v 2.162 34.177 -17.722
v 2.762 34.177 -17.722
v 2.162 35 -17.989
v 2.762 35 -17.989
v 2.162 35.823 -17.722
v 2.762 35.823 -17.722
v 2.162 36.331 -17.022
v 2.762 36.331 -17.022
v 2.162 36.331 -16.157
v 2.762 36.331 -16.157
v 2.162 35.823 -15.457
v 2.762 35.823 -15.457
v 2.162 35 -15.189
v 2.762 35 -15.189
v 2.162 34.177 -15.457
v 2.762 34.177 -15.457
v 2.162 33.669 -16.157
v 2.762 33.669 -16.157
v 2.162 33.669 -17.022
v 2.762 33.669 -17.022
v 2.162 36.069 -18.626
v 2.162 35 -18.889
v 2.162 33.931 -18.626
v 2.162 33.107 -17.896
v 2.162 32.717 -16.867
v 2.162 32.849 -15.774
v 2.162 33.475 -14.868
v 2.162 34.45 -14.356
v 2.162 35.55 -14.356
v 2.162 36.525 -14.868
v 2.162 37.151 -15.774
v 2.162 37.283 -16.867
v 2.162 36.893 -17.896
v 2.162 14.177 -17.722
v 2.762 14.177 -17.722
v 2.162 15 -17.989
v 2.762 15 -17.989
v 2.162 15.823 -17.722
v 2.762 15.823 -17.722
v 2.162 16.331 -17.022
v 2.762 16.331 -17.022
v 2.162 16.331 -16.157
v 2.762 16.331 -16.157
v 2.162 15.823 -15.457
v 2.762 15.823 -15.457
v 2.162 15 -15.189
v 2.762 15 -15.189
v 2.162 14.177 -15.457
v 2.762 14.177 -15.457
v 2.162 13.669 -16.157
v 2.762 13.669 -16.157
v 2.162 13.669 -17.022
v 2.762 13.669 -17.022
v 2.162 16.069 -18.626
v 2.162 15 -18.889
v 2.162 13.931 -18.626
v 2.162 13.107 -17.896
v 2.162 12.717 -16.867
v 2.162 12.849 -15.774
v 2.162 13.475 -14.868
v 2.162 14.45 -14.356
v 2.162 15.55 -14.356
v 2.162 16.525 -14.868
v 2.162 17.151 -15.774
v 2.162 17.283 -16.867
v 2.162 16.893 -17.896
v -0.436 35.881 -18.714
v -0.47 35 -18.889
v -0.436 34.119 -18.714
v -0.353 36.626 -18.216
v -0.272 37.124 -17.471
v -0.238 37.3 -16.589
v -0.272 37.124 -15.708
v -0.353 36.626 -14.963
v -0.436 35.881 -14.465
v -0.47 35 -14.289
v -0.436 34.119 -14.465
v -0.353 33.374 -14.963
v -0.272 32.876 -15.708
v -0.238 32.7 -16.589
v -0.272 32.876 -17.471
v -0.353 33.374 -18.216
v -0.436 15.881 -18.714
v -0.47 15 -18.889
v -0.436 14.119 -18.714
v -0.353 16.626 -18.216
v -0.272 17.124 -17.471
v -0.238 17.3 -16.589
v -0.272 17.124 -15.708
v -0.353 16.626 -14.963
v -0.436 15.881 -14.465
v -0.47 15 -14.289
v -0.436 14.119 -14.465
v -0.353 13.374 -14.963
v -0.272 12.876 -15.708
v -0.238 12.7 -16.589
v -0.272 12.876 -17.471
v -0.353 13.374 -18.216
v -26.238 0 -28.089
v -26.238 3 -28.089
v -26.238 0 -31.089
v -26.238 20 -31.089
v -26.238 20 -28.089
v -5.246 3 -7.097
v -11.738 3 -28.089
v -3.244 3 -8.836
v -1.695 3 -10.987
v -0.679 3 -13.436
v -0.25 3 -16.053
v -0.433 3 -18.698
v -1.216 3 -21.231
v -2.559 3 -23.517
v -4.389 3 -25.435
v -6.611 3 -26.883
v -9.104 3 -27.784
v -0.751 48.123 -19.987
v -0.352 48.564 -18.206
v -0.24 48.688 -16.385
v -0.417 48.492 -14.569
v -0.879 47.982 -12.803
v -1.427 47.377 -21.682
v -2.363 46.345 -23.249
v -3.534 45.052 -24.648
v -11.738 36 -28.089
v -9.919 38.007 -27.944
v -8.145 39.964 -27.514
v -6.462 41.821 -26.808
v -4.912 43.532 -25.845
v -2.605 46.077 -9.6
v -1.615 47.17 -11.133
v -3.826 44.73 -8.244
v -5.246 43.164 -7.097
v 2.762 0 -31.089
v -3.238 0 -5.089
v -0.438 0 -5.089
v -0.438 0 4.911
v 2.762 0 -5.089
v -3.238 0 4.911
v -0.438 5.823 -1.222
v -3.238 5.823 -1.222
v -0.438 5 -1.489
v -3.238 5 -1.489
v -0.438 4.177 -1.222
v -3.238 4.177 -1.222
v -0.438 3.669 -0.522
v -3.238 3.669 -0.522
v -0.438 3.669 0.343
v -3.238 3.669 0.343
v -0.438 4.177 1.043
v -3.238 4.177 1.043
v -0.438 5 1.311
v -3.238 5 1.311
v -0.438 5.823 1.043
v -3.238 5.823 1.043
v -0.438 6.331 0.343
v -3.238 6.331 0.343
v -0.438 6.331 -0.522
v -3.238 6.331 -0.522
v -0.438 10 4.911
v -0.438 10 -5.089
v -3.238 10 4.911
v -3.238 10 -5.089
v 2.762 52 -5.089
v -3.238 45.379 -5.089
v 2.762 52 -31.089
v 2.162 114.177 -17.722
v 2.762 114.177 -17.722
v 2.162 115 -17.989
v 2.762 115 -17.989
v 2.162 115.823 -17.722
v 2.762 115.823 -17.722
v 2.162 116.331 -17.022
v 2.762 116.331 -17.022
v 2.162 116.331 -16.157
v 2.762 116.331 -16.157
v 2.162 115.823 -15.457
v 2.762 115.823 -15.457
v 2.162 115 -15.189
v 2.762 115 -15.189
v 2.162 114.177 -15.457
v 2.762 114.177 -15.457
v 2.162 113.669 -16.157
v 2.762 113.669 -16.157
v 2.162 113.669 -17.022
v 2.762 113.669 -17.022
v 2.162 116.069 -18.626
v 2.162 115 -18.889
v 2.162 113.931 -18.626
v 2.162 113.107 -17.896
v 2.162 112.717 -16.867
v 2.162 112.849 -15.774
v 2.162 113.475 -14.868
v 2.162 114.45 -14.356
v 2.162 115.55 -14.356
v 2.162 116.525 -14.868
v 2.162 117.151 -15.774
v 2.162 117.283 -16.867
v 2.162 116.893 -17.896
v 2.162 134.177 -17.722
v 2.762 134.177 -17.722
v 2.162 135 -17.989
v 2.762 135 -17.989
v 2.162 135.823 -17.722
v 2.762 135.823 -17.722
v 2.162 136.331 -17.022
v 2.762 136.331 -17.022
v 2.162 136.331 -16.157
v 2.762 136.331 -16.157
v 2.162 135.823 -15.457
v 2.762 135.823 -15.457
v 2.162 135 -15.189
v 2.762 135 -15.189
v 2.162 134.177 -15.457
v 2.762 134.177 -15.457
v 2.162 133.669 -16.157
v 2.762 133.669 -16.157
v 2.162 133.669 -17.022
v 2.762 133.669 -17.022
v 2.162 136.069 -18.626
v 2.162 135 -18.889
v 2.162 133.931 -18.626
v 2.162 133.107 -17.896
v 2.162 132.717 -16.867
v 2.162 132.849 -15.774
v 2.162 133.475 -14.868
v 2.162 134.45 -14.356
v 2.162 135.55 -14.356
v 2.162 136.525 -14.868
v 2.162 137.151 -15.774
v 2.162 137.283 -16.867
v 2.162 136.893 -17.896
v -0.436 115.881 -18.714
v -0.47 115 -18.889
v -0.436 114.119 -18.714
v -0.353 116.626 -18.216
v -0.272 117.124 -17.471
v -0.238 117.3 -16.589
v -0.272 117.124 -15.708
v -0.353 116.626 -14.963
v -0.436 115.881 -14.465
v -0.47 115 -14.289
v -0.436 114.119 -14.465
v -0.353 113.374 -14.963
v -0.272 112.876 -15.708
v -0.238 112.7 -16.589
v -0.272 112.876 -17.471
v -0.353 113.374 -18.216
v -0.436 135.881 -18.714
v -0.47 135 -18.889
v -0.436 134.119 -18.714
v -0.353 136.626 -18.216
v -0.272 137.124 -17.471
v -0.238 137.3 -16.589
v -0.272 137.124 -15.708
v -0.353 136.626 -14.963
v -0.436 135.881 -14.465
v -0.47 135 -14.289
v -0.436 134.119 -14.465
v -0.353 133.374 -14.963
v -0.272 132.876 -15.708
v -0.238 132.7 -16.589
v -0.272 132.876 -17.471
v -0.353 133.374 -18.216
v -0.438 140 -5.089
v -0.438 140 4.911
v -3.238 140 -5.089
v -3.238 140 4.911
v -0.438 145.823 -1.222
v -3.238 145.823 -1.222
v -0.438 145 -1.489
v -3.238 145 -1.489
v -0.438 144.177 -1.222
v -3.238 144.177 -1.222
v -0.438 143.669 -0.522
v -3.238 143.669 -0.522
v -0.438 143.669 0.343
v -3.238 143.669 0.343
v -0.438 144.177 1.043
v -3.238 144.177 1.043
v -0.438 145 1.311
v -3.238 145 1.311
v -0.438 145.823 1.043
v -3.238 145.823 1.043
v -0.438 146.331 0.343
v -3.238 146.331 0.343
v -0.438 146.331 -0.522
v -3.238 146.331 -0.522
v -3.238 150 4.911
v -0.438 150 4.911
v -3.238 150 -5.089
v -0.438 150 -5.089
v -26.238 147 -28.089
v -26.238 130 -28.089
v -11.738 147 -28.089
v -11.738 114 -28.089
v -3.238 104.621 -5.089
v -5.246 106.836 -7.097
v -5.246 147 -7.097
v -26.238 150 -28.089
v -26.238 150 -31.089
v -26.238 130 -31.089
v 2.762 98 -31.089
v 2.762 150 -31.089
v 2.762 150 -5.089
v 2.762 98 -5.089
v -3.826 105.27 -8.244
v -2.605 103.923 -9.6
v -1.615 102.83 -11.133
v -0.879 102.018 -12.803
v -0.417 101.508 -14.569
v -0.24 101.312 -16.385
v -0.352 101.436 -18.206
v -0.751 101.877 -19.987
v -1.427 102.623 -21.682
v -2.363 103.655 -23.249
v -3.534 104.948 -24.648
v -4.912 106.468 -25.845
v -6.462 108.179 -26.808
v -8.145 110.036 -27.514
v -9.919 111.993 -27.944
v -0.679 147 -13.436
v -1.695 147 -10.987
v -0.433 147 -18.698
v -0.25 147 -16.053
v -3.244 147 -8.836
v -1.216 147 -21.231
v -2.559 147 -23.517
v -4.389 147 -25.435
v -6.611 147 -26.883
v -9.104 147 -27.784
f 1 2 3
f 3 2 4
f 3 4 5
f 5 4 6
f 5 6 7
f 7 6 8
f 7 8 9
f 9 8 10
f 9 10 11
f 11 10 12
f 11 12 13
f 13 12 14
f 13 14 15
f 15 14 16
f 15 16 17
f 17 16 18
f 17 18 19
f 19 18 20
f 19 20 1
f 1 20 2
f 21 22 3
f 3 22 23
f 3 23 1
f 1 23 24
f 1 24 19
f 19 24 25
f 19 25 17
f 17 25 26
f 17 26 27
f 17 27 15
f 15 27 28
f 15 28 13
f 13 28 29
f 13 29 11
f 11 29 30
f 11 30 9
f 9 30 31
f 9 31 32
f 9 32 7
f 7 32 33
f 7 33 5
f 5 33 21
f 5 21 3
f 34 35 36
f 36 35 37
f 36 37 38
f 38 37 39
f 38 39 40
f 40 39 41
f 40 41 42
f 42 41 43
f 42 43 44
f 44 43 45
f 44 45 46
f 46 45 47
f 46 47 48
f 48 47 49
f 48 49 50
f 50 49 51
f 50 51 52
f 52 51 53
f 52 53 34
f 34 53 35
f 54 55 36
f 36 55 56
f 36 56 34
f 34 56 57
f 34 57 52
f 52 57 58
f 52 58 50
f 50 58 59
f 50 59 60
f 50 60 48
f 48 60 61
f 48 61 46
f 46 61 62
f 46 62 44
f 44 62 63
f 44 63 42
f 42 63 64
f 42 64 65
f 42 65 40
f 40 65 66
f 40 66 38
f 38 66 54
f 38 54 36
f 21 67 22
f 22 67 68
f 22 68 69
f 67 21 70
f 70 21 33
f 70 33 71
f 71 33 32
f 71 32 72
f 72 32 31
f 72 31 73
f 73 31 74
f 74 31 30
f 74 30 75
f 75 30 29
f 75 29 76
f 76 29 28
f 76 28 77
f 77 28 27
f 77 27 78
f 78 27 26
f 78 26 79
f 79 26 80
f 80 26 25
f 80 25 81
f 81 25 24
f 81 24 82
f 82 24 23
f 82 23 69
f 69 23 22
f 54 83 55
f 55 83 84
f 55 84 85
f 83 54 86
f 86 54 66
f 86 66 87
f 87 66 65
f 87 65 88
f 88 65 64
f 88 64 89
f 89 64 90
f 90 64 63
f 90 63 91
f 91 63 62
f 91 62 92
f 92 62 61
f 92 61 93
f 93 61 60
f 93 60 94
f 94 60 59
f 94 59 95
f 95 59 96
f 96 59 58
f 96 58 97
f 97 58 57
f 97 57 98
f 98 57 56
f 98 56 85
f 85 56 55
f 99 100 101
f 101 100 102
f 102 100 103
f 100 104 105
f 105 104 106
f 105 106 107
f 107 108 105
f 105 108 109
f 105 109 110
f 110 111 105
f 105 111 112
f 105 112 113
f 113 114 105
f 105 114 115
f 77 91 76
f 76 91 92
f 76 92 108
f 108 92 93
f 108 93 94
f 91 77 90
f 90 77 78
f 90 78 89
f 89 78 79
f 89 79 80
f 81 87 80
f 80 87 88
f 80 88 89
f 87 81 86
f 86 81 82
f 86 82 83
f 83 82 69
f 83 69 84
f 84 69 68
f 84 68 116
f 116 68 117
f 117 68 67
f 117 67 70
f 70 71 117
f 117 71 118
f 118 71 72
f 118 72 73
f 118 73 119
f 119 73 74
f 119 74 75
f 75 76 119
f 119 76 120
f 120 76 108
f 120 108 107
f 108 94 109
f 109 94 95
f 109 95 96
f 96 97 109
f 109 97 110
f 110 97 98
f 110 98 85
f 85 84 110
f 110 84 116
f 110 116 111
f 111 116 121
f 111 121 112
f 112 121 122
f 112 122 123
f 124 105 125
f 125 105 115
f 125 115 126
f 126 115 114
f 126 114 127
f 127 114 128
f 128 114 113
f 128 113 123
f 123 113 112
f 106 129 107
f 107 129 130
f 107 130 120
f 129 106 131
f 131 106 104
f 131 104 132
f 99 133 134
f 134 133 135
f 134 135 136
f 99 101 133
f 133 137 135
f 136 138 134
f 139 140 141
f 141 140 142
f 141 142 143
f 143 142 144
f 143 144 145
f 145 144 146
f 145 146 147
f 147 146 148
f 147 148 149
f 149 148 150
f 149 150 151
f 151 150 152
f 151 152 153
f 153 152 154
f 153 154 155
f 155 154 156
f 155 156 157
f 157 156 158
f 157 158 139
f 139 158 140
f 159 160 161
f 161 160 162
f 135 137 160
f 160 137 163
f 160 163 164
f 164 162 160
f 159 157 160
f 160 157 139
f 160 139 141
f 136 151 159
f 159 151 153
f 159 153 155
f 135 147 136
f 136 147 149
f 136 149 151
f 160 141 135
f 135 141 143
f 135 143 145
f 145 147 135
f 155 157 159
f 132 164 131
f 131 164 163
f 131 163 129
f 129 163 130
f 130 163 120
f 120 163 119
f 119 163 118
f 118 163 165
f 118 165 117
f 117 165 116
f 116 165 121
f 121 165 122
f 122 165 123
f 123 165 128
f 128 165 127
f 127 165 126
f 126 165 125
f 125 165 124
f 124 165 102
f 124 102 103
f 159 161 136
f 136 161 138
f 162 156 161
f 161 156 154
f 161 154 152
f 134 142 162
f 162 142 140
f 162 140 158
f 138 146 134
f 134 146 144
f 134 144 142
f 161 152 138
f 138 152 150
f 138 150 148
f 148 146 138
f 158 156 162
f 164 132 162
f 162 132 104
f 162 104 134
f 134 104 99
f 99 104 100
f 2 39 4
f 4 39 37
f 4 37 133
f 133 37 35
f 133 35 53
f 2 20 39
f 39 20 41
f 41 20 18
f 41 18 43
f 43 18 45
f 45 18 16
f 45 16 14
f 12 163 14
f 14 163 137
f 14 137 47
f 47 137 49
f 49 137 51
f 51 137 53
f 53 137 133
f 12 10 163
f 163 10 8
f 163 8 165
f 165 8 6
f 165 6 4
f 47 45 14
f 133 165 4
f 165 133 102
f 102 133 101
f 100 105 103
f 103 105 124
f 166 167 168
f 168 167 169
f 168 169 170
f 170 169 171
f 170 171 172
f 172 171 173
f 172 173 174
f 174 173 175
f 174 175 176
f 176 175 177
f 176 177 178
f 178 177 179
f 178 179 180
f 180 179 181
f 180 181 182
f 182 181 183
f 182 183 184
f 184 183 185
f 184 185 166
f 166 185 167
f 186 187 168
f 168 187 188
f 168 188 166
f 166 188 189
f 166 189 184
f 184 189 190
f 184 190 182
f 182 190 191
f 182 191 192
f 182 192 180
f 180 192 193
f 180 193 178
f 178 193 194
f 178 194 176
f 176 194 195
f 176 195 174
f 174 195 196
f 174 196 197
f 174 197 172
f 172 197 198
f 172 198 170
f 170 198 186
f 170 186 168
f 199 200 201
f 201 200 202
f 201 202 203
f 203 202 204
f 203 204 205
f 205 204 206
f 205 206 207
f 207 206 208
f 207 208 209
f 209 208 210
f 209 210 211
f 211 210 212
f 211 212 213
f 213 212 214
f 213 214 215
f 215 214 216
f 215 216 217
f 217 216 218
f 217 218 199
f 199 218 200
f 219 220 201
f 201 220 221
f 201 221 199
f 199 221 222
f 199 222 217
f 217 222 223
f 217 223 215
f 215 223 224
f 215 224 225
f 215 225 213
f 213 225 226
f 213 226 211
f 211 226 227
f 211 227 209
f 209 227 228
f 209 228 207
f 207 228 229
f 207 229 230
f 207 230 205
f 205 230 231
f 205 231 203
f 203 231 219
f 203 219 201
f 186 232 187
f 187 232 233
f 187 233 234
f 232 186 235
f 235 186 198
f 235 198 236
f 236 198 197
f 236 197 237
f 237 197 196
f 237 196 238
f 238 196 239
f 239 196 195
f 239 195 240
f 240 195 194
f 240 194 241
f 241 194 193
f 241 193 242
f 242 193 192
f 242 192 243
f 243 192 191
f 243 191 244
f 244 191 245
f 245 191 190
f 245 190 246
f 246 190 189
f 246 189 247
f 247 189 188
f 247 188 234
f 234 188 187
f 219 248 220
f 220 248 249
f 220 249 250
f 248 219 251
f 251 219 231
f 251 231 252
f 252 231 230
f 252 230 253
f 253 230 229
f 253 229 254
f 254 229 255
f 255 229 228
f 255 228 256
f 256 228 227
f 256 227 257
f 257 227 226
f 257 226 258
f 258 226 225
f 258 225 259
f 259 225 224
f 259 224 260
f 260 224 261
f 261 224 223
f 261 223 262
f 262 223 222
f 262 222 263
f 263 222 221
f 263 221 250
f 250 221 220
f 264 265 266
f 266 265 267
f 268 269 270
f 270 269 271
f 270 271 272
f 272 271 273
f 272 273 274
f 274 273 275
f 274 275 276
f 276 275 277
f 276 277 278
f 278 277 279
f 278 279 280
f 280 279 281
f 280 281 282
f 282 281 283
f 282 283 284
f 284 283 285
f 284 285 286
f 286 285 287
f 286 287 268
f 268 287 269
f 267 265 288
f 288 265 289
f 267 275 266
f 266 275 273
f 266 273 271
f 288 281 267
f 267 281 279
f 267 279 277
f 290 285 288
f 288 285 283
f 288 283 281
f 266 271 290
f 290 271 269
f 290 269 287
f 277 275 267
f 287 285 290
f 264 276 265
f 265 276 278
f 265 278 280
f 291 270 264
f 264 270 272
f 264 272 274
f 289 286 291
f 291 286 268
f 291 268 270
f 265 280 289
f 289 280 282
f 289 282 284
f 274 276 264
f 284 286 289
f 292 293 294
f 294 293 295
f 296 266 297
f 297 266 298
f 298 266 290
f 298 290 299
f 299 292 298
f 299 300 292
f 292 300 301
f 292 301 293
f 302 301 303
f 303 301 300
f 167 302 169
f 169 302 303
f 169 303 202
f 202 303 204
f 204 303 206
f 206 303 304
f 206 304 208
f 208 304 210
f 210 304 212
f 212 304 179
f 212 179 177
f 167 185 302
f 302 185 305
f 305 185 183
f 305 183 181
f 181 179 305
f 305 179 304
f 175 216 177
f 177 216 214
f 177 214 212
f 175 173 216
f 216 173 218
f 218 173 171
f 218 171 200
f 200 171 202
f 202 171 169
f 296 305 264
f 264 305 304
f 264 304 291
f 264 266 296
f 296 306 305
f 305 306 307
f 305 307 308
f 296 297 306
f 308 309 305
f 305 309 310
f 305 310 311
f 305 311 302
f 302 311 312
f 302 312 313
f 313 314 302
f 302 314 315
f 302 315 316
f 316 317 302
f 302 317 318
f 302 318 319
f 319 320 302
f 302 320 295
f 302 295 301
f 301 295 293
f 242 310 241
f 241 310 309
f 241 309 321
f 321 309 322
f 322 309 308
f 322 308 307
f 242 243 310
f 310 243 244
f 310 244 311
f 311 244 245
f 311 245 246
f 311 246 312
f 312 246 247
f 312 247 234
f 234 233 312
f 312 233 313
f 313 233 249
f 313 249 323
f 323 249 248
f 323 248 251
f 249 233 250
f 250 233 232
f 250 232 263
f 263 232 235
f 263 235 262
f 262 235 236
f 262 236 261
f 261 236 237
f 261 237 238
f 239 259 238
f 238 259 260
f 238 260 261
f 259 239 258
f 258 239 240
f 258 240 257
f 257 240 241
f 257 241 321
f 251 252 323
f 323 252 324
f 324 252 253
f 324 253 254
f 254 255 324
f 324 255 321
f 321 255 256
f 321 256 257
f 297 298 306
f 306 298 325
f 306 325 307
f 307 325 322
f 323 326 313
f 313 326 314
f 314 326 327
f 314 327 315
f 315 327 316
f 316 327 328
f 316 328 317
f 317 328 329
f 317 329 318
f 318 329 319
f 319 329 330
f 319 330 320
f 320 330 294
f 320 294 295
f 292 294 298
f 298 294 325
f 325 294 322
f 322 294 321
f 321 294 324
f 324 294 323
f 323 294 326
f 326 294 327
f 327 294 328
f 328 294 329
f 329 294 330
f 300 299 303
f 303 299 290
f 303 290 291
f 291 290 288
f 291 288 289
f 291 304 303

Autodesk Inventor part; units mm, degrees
ref_plane "YZ Plane" through (0, 0, 0) normal (1, 0, 0) x (0, 1, 0)
ref_plane "XZ Plane" through (0, 0, 0) normal (0, 1, 0) x (-1, 0, 0)
ref_plane "XY Plane" through (0, 0, 0) normal (0, 0, 1) x (1, 0, 0)
sketch "Sketch1" plane through (0, 0, 0) normal (0, 1, 0) x (-1, 0, 0)
  line L0 (0.4379, 4.9107) -> (0.4379, -5.0893)
  line L1 (0.4379, -5.0893) -> (-2.7621, -5.0893)
  line L2 (-2.7621, -5.0893) -> (-2.7621, -31.0893)
  line L3 (-2.7621, -31.0893) -> (26.2379, -31.0893)
  line L4 (26.2379, -31.0893) -> (26.2379, -28.0893)
  line L5 (26.2379, -28.0893) -> (0.2379, -28.0893)
  line L6 (0.2379, -28.0893) -> (0.2379, -8.0893)
  line L7 (0.2379, -8.0893) -> (3.2379, -8.0893)
  line L8 (3.2379, -8.0893) -> (3.2379, 4.9107)
  line L9 (3.2379, 4.9107) -> (0.4379, 4.9107)
  circle A0 centre (11.7379, -16.5893) radius 11.5
  line L10 (3.2379, -8.0893) -> (3.2379, -8.8433)
  line L11 (3.2379, -5.0893) -> (26.2379, -28.0893)
  point P0 (0, 0)
  point P1 (11.7379, -28.0893)
  point P2 (5.2457, -7.0971)
  dimension "d61" = 23
  dimension "d0" = 20
  dimension "d1" = 3
  dimension "d2" = 3
  dimension "d3" = 2.8
  dimension "d4" = 10
  dimension "d5" = 3
  dimension "d7" = 3.2
  dimension "d8" = 23
extrude "Extrusion1" add sketch "Sketch1" along normal blind 150 contours L9 L8 L7 L6 L5 L4 L3 L2 L1 L0 | L11 A0 L10 L8 | L10 A0 L6 L7 | A0 L5 L6
sketch "Sketch2" plane through (2.7621, 0, -31.0893) normal (0, 0, -1) x (-1, 0, 0)
  line L0 (29, 0) -> (29, 150) projected
  line L1 (29, 130) -> (0, 98)
  line L2 (0, 0) -> (0, 150) projected
  line L3 (29, 20) -> (0, 52)
  line L4 (0, 0) -> (29, 0) projected
  point P0 (2.7621, 0)
  dimension "d11" = 20
  dimension "d12" = 20
  dimension "d13" = 32
  dimension "d14" = 32
extrude "Extrusion2" cut sketch "Sketch2" against normal blind 150 contours L3 L2 L1 L0
sketch "Sketch3" plane through (-3.2379, 150, -5.0893) normal (-1, 0, 0) x (0, 0, 1)
  line L0 (0, 0) -> (10, 0) projected
  line L1 (0, -150) -> (0, -104.6207) projected
  line L2 (10, 0) -> (0, 0)
  line L3 (0, 0) -> (0, -150)
  line L4 (0, -150) -> (10, -150)
  line L5 (10, -150) -> (10, 0)
  line L6 (10, -48.469) -> (10, 0) projected
  line L7 (10, -10) -> (0, -10)
  line L8 (10, -150) -> (10, -104.6207) projected
  line L9 (10, -140) -> (0, -140)
  circle A0 centre (5, -5) radius 1.4
  circle A1 centre (5, -145) radius 1.4
  point P0 (5.0893, -150)
  point P1 (0, -140)
  dimension "d17" = 10
  dimension "d18" = 10
  dimension "d19" = 2.8
  dimension "d20" = 2.8
  dimension "d21" = 5
  dimension "d22" = 5
  dimension "d23" = 5
  dimension "d24" = 5
extrude "Extrusion3" cut sketch "Sketch3" against normal blind 150 contours L7 L5 L9 L1 L3 | A0 | A1
sketch "Sketch5" plane through (2.7621, 150, -5.0893) normal (1, 0, 0) x (0, 0, -1)
  line L0 (2.0078, 0) -> (0, 0) projected
  line L1 (23, -36) -> (23, 0) projected
  line L2 (2.0078, 0) -> (23, 0)
  line L3 (23, 0) -> (23, -3)
  line L4 (23, -3) -> (2.0078, -3)
  line L5 (2.0078, -3) -> (2.0078, 0)
  line L6 (2.0078, -150) -> (2.0078, -106.8362) projected
  line L7 (23, -150) -> (23, -130) projected
  line L8 (2.0078, -150) -> (23, -150)
  line L9 (23, -150) -> (23, -147)
  line L10 (23, -147) -> (2.0078, -147)
  line L11 (2.0078, -147) -> (2.0078, -150)
  point P0 (-5.0893, -150)
  point P1 (2.0078, -147)
  dimension "d31" = 3
  dimension "d32" = 3
extrude "Extrusion5" add sketch "Sketch5" against normal up to surface (29 mm away)
sketch "Sketch6" plane through (0, 150, 0) normal (0, 1, 0) x (1, 0, 0)
  line L0 (-5.2457, 7.0971) -> (-26.2379, 7.0971) projected
  line L1 (-11.7379, 28.0893) -> (-26.2379, 28.0893) projected
  line L2 (-5.2457, 7.0971) -> (-26.2379, 28.0893)
  line L3 (-26.2379, 7.0971) -> (-26.2379, 28.0893)
  line L4 (-26.2379, 7.0971) -> (-5.2457, 7.0971)
  point P0 (0, 0)
extrude "Extrusion6" cut sketch "Sketch6" against normal through all
sketch "Sketch7" plane through (2.7621, 150, -5.0893) normal (1, 0, 0) x (0, 0, -1)
  circle A0 centre (11.5, -15) radius 2.3
  circle A1 centre (11.5, -35) radius 2.3
  circle A2 centre (11.5, -115) radius 2.3
  circle A3 centre (11.5, -135) radius 2.3
  line L0 (0, -52) -> (0, 0) projected
  line L1 (0, -150) -> (0, -98) projected
  line L2 (0, -150) -> (26, -150) projected
  line L3 (0, 0) -> (26, 0) projected
  point P0 (-5.0893, -150)
  dimension "d37" = 4.6
  dimension "d38" = 4.6
  dimension "d39" = 4.6
  dimension "d40" = 4.6
  dimension "d41" = 11.5
  dimension "d42" = 11.5
  dimension "d43" = 11.5
  dimension "d44" = 11.5
  dimension "d45" = 15
  dimension "d46" = 20
  dimension "d47" = 20
  dimension "d48" = 15
extrude "Extrusion7" cut sketch "Sketch7" against normal blind 150
sketch "Sketch8" plane through (2.7621, 150, -5.0893) normal (1, 0, 0) x (0, 0, -1)
  line L0 (0, 0) -> (26, 0) projected
  line L1 (0, -150) -> (0, -140) projected
  line L2 (26, 0) -> (0, 0)
  line L3 (0, 0) -> (0, -150)
  line L4 (0, -150) -> (26, -150)
  line L5 (26, -150) -> (26, 0)
  line L6 (26, -75) -> (0, -75)
  circle A0 centre (11.5, -135) radius 1.4
  circle A1 centre (11.5, -115) radius 1.4
  circle A2 centre (11.5, -115) radius 2.3 projected
  circle A3 centre (11.5, -135) radius 2.3 projected
  circle A4 centre (11.5, -35) radius 2.3 projected
  circle A5 centre (11.5, -35) radius 1.4
  circle A6 centre (11.5, -15) radius 1.4
  circle A7 centre (11.5, -15) radius 2.3 projected
  point P0 (-5.0893, -150)
  dimension "d55" = 2.8
  dimension "d56" = 2.8
  dimension "d57" = 2.8
  dimension "d58" = 2.8
extrude "Extrusion9" add sketch "Sketch8" against normal blind 0.6 contours A2 | A3 | A4 | A7
sketch "Sketch9" plane through (2.7621, 150, -31.0893) normal (0, 0, -1) x (-1, 0, 0)
  point P0 (2.7621, -150)
properties part number "usb_battery_pocket_2"
